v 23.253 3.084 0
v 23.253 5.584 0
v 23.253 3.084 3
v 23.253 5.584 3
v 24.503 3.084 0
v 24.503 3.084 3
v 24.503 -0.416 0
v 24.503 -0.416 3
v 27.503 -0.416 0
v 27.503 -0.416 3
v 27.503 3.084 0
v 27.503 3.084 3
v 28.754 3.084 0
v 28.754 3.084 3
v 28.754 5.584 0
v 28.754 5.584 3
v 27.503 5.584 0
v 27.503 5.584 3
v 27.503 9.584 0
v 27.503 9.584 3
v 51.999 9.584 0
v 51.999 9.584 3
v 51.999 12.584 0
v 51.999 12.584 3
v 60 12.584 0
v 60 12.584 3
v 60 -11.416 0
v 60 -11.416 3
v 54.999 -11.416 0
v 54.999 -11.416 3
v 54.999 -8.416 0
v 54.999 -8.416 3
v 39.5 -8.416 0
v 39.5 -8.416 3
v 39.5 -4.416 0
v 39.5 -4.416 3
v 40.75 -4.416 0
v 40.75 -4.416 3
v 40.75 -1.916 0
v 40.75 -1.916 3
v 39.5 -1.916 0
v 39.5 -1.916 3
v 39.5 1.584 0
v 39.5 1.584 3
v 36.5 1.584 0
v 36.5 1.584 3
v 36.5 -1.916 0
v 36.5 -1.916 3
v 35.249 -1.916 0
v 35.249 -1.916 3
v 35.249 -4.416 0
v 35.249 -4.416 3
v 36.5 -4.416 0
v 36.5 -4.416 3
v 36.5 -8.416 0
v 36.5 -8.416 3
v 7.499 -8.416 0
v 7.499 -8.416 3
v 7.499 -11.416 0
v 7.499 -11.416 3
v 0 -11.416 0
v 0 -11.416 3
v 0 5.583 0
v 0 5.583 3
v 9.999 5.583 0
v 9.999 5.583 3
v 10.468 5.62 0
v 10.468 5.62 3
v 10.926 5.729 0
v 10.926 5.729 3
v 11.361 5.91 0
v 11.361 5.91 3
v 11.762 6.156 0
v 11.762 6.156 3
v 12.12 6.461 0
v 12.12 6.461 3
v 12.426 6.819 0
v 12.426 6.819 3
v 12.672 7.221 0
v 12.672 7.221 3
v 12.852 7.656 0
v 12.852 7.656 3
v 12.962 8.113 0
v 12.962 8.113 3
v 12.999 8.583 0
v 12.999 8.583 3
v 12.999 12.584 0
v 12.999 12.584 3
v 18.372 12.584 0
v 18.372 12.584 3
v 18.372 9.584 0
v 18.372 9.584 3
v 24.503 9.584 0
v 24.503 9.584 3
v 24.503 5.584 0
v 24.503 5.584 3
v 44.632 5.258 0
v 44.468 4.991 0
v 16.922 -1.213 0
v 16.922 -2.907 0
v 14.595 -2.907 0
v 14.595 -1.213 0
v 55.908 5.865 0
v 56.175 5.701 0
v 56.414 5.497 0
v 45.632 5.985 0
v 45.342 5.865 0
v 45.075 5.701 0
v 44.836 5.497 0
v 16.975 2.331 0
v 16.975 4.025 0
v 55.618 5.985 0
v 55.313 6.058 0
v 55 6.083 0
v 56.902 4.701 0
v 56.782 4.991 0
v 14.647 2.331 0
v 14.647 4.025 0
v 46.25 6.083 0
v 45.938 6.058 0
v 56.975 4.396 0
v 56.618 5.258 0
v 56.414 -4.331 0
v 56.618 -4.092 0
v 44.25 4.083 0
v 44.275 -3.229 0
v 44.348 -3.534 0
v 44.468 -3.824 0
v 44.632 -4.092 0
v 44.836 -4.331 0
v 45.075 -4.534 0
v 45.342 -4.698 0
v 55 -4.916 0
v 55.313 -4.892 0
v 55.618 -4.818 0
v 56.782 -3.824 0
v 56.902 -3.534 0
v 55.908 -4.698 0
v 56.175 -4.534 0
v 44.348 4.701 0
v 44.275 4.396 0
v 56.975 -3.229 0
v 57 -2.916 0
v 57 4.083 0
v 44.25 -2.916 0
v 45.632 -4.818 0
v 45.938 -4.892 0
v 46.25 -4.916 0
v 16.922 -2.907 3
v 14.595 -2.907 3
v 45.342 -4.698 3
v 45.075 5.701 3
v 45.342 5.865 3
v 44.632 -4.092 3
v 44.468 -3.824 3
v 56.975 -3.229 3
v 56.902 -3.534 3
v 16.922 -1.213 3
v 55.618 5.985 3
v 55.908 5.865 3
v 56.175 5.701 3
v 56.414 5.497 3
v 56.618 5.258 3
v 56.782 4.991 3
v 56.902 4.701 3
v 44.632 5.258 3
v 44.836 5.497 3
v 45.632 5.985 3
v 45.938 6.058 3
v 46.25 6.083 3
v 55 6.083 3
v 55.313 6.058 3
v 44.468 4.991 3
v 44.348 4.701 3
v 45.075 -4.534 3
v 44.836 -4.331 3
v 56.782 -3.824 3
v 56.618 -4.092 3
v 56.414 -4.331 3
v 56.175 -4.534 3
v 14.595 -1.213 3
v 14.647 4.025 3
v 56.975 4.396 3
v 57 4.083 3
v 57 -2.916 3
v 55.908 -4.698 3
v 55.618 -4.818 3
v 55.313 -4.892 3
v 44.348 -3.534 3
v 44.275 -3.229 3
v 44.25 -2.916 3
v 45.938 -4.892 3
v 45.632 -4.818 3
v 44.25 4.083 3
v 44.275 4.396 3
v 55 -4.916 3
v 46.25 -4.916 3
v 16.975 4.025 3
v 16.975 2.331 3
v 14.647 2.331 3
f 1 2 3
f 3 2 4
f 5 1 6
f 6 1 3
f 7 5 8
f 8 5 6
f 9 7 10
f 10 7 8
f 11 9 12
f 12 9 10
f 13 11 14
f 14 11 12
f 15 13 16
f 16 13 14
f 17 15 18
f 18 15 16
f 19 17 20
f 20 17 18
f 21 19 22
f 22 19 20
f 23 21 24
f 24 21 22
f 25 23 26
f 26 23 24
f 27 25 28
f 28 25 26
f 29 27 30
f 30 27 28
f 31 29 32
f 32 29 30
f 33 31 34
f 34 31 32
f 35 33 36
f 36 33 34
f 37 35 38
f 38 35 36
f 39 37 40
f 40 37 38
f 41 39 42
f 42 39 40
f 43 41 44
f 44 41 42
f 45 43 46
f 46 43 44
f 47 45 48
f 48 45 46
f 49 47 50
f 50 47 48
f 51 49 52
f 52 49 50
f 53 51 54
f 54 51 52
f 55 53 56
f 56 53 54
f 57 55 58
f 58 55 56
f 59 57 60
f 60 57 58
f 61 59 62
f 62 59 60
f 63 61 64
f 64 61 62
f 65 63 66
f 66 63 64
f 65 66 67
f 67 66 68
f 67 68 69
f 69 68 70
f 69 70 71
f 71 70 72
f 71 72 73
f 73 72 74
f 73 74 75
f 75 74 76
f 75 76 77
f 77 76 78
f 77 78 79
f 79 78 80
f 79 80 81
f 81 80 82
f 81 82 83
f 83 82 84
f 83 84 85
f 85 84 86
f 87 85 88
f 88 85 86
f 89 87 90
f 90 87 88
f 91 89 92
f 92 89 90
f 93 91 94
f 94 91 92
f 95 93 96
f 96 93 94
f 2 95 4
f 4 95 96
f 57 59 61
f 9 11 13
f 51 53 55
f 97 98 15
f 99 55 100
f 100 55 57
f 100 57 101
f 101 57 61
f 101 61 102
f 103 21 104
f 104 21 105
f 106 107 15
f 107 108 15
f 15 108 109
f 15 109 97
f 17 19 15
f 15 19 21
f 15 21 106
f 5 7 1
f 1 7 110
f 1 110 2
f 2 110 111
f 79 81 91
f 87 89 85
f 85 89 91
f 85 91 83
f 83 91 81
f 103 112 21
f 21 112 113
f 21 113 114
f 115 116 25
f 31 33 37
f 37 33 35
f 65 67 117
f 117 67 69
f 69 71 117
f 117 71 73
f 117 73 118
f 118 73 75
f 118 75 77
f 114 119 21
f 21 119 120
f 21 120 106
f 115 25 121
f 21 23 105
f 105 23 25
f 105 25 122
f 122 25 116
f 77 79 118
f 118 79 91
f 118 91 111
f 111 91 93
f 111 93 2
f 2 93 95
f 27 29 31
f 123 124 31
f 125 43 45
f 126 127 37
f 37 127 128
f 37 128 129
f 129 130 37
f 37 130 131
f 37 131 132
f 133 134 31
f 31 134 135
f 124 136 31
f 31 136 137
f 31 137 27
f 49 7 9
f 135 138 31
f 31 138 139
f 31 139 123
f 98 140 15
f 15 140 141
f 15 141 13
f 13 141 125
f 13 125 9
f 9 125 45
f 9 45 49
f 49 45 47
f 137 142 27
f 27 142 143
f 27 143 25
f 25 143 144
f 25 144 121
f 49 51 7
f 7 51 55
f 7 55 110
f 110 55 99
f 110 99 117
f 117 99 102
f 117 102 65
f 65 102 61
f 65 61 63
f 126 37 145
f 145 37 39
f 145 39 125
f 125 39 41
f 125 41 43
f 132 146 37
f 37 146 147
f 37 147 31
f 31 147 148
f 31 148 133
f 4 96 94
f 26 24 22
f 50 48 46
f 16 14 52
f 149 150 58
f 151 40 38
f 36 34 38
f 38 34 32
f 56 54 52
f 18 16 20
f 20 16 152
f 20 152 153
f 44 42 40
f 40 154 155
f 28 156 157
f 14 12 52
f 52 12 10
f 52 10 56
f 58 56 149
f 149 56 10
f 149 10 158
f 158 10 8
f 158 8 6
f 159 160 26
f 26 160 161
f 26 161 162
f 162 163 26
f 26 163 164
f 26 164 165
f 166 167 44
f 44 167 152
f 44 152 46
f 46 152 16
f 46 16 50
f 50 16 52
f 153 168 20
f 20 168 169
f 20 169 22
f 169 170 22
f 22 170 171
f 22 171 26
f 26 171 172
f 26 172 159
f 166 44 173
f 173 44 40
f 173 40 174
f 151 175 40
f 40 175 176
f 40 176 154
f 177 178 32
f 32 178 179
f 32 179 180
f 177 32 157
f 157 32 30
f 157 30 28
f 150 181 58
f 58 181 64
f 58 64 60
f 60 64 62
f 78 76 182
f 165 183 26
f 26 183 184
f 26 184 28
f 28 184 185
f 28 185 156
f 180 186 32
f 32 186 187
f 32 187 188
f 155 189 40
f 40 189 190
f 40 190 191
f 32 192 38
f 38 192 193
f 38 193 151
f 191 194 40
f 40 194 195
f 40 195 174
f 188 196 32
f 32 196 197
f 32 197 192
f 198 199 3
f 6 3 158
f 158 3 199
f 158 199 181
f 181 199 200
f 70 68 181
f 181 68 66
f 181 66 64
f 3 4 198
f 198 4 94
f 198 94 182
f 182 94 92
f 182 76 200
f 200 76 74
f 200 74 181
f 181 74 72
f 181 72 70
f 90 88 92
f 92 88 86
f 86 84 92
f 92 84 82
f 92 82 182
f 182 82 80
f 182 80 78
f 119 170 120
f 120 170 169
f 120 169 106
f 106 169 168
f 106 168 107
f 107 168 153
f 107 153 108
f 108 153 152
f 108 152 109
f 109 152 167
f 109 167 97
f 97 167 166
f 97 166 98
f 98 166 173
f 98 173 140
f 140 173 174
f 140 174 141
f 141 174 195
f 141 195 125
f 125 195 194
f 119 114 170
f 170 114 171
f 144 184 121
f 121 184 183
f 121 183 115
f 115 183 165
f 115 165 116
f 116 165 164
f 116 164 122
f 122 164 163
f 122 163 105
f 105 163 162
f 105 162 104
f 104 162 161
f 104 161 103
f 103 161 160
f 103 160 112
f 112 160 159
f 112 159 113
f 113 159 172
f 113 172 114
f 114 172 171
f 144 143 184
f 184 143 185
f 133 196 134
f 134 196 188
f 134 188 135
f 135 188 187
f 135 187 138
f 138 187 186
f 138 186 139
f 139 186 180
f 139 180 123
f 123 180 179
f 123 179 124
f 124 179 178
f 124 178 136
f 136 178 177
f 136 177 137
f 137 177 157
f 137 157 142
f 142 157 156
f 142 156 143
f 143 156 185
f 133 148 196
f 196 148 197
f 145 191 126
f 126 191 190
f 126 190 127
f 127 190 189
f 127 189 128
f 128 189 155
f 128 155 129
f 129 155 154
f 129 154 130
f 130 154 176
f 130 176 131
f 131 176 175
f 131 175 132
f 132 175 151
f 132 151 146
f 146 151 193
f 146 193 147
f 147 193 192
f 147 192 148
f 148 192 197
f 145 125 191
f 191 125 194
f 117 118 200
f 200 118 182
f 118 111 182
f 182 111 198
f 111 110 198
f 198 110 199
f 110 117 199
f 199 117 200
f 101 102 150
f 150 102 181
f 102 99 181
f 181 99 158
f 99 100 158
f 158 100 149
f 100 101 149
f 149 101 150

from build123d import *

# Parameters (mm, degrees)
SKETCH_1_W      = 2.3276
SKETCH_1_H      = 1.694
EXTRUDE_1_DEPTH = 3


with BuildPart() as part:
    # 草图1 → 凸台-拉伸1 (new body)
    with BuildSketch(Plane.XY.offset(3)):
        with BuildLine():
            Line((23.2531, 5.583631793), (24.503, 5.583631793))
            Line((24.503, 5.583631793), (24.503, 9.583631793))
            Line((24.503, 9.583631793), (18.3721, 9.583631793))
            Line((18.3721, 9.583631793), (18.3721, 12.583631793))
            Line((18.3721, 12.583631793), (12.9991, 12.583631793))
            Line((12.9991, 12.583631793), (12.9991, 8.582631793))
            ThreePointArc((12.9991, 8.582631793), (12.120420344, 6.461311449), (9.9991, 5.582631793))
            Line((9.9991, 5.582631793), (0, 5.582631793))
            Line((0, 5.582631793), (0, -11.416368207))
            Line((0, -11.416368207), (7.4994, -11.416368207))
            Line((7.4994, -11.416368207), (7.4994, -8.416368207))
            Line((7.4994, -8.416368207), (36.5002, -8.416368207))
            Line((36.5002, -8.416368207), (36.5002, -4.416368207))
            Line((36.5002, -4.416368207), (35.2489, -4.416368207))
            Line((35.2489, -4.416368207), (35.2489, -1.916368207))
            Line((35.2489, -1.916368207), (36.5002, -1.916368207))
            Line((36.5002, -1.916368207), (36.5002, 1.583631793))
            Line((36.5002, 1.583631793), (39.5003, 1.583631793))
            Line((39.5003, 1.583631793), (39.5003, -1.916368207))
            Line((39.5003, -1.916368207), (40.7501, -1.916368207))
            Line((40.7501, -1.916368207), (40.7501, -4.416368207))
            Line((40.7501, -4.416368207), (39.5003, -4.416368207))
            Line((39.5003, -4.416368207), (39.5003, -8.416368207))
            Line((39.5003, -8.416368207), (54.9988, -8.416368207))
            Line((54.9988, -8.416368207), (54.9988, -11.416368207))
            Line((54.9988, -11.416368207), (59.9998, -11.416368207))
            Line((59.9998, -11.416368207), (59.9998, 12.583631793))
            Line((59.9998, 12.583631793), (51.9988, 12.583631793))
            Line((51.9988, 12.583631793), (51.9988, 9.583631793))
            Line((51.9988, 9.583631793), (27.5031, 9.583631793))
            Line((27.5031, 9.583631793), (27.5031, 5.583631793))
            Line((27.5031, 5.583631793), (28.7543, 5.583631793))
            Line((28.7543, 5.583631793), (28.7543, 3.083631793))
            Line((28.7543, 3.083631793), (27.5031, 3.083631793))
            Line((27.5031, 3.083631793), (27.5031, -0.416368207))
            Line((27.5031, -0.416368207), (24.503, -0.416368207))
            Line((24.503, -0.416368207), (24.503, 3.083631793))
            Line((24.503, 3.083631793), (23.2531, 3.083631793))
            Line((23.2531, 3.083631793), (23.2531, 5.583631793))
        make_face()
        with BuildLine():
            Line((46.2504, 6.082631793), (54.9998, 6.082631793))
            ThreePointArc((54.9998, 6.082631793), (56.414013562, 5.496845355), (56.9998, 4.082631793))
            Line((56.9998, 4.082631793), (56.9998, -2.916368207))
            ThreePointArc((56.9998, -2.916368207), (56.414013562, -4.330581769), (54.9998, -4.916368207))
            Line((54.9998, -4.916368207), (46.2504, -4.916368207))
            ThreePointArc((46.2504, -4.916368207), (44.836186438, -4.330581769), (44.2504, -2.916368207))
            Line((44.2504, -2.916368207), (44.2504, 4.082631793))
            ThreePointArc((44.2504, 4.082631793), (44.836186438, 5.496845355), (46.2504, 6.082631793))
        make_face(mode=Mode.SUBTRACT)
        with Locations((15.811, 3.177631793)):
            Rectangle(SKETCH_1_W, SKETCH_1_H, mode=Mode.SUBTRACT)
        with Locations((15.7586, -2.060368207)):
            Rectangle(SKETCH_1_W, SKETCH_1_H, mode=Mode.SUBTRACT)
    extrude(amount=-EXTRUDE_1_DEPTH)


solid = part.part
